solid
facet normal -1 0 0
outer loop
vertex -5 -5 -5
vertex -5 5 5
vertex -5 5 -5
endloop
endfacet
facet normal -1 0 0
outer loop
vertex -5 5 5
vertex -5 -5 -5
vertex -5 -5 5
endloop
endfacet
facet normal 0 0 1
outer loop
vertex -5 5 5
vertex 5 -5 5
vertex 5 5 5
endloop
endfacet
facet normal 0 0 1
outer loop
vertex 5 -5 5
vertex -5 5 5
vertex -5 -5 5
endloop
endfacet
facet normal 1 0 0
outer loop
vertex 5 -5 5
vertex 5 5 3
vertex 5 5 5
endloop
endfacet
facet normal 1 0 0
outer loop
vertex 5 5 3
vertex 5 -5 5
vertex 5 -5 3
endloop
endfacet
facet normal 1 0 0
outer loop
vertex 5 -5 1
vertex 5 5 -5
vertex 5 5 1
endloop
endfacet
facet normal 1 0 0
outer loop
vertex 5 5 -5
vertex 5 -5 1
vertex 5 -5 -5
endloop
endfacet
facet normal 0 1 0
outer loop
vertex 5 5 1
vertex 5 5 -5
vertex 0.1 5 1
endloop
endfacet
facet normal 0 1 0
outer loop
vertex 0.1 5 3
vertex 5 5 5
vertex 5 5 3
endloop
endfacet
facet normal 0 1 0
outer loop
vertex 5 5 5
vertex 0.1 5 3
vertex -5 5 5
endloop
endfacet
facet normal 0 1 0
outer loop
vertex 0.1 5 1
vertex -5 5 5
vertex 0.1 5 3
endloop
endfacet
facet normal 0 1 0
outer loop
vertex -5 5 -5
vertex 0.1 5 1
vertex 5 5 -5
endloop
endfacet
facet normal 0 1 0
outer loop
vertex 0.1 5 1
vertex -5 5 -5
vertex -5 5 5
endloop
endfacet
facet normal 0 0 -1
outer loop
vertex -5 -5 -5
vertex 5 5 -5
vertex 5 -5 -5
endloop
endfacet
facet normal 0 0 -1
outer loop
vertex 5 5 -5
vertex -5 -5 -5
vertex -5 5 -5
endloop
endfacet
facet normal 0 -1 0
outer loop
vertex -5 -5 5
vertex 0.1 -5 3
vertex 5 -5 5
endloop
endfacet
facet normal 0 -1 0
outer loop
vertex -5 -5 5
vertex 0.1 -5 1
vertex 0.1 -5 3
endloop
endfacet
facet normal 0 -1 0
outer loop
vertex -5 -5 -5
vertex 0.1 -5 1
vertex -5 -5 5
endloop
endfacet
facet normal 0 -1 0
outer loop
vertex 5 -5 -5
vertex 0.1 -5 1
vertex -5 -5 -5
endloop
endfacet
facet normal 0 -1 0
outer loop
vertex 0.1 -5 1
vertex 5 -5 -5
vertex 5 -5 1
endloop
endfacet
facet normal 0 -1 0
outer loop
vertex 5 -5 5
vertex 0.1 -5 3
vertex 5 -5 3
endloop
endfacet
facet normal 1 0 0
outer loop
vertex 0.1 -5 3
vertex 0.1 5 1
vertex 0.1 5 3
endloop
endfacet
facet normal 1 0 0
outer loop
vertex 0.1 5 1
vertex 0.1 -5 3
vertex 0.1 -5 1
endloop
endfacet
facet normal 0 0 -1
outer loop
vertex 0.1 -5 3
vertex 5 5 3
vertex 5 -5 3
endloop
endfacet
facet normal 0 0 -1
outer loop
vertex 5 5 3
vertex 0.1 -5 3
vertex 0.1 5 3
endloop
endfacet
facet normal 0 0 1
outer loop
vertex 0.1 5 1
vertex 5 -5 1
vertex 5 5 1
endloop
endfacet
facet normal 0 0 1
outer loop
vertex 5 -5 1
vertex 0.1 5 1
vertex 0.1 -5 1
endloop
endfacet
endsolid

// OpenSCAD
difference(){
    cube([10,10,10], center=true);
    translate([2.6,0,2]){
        cube([5,10.1,2.0],center=true);
    }
}
